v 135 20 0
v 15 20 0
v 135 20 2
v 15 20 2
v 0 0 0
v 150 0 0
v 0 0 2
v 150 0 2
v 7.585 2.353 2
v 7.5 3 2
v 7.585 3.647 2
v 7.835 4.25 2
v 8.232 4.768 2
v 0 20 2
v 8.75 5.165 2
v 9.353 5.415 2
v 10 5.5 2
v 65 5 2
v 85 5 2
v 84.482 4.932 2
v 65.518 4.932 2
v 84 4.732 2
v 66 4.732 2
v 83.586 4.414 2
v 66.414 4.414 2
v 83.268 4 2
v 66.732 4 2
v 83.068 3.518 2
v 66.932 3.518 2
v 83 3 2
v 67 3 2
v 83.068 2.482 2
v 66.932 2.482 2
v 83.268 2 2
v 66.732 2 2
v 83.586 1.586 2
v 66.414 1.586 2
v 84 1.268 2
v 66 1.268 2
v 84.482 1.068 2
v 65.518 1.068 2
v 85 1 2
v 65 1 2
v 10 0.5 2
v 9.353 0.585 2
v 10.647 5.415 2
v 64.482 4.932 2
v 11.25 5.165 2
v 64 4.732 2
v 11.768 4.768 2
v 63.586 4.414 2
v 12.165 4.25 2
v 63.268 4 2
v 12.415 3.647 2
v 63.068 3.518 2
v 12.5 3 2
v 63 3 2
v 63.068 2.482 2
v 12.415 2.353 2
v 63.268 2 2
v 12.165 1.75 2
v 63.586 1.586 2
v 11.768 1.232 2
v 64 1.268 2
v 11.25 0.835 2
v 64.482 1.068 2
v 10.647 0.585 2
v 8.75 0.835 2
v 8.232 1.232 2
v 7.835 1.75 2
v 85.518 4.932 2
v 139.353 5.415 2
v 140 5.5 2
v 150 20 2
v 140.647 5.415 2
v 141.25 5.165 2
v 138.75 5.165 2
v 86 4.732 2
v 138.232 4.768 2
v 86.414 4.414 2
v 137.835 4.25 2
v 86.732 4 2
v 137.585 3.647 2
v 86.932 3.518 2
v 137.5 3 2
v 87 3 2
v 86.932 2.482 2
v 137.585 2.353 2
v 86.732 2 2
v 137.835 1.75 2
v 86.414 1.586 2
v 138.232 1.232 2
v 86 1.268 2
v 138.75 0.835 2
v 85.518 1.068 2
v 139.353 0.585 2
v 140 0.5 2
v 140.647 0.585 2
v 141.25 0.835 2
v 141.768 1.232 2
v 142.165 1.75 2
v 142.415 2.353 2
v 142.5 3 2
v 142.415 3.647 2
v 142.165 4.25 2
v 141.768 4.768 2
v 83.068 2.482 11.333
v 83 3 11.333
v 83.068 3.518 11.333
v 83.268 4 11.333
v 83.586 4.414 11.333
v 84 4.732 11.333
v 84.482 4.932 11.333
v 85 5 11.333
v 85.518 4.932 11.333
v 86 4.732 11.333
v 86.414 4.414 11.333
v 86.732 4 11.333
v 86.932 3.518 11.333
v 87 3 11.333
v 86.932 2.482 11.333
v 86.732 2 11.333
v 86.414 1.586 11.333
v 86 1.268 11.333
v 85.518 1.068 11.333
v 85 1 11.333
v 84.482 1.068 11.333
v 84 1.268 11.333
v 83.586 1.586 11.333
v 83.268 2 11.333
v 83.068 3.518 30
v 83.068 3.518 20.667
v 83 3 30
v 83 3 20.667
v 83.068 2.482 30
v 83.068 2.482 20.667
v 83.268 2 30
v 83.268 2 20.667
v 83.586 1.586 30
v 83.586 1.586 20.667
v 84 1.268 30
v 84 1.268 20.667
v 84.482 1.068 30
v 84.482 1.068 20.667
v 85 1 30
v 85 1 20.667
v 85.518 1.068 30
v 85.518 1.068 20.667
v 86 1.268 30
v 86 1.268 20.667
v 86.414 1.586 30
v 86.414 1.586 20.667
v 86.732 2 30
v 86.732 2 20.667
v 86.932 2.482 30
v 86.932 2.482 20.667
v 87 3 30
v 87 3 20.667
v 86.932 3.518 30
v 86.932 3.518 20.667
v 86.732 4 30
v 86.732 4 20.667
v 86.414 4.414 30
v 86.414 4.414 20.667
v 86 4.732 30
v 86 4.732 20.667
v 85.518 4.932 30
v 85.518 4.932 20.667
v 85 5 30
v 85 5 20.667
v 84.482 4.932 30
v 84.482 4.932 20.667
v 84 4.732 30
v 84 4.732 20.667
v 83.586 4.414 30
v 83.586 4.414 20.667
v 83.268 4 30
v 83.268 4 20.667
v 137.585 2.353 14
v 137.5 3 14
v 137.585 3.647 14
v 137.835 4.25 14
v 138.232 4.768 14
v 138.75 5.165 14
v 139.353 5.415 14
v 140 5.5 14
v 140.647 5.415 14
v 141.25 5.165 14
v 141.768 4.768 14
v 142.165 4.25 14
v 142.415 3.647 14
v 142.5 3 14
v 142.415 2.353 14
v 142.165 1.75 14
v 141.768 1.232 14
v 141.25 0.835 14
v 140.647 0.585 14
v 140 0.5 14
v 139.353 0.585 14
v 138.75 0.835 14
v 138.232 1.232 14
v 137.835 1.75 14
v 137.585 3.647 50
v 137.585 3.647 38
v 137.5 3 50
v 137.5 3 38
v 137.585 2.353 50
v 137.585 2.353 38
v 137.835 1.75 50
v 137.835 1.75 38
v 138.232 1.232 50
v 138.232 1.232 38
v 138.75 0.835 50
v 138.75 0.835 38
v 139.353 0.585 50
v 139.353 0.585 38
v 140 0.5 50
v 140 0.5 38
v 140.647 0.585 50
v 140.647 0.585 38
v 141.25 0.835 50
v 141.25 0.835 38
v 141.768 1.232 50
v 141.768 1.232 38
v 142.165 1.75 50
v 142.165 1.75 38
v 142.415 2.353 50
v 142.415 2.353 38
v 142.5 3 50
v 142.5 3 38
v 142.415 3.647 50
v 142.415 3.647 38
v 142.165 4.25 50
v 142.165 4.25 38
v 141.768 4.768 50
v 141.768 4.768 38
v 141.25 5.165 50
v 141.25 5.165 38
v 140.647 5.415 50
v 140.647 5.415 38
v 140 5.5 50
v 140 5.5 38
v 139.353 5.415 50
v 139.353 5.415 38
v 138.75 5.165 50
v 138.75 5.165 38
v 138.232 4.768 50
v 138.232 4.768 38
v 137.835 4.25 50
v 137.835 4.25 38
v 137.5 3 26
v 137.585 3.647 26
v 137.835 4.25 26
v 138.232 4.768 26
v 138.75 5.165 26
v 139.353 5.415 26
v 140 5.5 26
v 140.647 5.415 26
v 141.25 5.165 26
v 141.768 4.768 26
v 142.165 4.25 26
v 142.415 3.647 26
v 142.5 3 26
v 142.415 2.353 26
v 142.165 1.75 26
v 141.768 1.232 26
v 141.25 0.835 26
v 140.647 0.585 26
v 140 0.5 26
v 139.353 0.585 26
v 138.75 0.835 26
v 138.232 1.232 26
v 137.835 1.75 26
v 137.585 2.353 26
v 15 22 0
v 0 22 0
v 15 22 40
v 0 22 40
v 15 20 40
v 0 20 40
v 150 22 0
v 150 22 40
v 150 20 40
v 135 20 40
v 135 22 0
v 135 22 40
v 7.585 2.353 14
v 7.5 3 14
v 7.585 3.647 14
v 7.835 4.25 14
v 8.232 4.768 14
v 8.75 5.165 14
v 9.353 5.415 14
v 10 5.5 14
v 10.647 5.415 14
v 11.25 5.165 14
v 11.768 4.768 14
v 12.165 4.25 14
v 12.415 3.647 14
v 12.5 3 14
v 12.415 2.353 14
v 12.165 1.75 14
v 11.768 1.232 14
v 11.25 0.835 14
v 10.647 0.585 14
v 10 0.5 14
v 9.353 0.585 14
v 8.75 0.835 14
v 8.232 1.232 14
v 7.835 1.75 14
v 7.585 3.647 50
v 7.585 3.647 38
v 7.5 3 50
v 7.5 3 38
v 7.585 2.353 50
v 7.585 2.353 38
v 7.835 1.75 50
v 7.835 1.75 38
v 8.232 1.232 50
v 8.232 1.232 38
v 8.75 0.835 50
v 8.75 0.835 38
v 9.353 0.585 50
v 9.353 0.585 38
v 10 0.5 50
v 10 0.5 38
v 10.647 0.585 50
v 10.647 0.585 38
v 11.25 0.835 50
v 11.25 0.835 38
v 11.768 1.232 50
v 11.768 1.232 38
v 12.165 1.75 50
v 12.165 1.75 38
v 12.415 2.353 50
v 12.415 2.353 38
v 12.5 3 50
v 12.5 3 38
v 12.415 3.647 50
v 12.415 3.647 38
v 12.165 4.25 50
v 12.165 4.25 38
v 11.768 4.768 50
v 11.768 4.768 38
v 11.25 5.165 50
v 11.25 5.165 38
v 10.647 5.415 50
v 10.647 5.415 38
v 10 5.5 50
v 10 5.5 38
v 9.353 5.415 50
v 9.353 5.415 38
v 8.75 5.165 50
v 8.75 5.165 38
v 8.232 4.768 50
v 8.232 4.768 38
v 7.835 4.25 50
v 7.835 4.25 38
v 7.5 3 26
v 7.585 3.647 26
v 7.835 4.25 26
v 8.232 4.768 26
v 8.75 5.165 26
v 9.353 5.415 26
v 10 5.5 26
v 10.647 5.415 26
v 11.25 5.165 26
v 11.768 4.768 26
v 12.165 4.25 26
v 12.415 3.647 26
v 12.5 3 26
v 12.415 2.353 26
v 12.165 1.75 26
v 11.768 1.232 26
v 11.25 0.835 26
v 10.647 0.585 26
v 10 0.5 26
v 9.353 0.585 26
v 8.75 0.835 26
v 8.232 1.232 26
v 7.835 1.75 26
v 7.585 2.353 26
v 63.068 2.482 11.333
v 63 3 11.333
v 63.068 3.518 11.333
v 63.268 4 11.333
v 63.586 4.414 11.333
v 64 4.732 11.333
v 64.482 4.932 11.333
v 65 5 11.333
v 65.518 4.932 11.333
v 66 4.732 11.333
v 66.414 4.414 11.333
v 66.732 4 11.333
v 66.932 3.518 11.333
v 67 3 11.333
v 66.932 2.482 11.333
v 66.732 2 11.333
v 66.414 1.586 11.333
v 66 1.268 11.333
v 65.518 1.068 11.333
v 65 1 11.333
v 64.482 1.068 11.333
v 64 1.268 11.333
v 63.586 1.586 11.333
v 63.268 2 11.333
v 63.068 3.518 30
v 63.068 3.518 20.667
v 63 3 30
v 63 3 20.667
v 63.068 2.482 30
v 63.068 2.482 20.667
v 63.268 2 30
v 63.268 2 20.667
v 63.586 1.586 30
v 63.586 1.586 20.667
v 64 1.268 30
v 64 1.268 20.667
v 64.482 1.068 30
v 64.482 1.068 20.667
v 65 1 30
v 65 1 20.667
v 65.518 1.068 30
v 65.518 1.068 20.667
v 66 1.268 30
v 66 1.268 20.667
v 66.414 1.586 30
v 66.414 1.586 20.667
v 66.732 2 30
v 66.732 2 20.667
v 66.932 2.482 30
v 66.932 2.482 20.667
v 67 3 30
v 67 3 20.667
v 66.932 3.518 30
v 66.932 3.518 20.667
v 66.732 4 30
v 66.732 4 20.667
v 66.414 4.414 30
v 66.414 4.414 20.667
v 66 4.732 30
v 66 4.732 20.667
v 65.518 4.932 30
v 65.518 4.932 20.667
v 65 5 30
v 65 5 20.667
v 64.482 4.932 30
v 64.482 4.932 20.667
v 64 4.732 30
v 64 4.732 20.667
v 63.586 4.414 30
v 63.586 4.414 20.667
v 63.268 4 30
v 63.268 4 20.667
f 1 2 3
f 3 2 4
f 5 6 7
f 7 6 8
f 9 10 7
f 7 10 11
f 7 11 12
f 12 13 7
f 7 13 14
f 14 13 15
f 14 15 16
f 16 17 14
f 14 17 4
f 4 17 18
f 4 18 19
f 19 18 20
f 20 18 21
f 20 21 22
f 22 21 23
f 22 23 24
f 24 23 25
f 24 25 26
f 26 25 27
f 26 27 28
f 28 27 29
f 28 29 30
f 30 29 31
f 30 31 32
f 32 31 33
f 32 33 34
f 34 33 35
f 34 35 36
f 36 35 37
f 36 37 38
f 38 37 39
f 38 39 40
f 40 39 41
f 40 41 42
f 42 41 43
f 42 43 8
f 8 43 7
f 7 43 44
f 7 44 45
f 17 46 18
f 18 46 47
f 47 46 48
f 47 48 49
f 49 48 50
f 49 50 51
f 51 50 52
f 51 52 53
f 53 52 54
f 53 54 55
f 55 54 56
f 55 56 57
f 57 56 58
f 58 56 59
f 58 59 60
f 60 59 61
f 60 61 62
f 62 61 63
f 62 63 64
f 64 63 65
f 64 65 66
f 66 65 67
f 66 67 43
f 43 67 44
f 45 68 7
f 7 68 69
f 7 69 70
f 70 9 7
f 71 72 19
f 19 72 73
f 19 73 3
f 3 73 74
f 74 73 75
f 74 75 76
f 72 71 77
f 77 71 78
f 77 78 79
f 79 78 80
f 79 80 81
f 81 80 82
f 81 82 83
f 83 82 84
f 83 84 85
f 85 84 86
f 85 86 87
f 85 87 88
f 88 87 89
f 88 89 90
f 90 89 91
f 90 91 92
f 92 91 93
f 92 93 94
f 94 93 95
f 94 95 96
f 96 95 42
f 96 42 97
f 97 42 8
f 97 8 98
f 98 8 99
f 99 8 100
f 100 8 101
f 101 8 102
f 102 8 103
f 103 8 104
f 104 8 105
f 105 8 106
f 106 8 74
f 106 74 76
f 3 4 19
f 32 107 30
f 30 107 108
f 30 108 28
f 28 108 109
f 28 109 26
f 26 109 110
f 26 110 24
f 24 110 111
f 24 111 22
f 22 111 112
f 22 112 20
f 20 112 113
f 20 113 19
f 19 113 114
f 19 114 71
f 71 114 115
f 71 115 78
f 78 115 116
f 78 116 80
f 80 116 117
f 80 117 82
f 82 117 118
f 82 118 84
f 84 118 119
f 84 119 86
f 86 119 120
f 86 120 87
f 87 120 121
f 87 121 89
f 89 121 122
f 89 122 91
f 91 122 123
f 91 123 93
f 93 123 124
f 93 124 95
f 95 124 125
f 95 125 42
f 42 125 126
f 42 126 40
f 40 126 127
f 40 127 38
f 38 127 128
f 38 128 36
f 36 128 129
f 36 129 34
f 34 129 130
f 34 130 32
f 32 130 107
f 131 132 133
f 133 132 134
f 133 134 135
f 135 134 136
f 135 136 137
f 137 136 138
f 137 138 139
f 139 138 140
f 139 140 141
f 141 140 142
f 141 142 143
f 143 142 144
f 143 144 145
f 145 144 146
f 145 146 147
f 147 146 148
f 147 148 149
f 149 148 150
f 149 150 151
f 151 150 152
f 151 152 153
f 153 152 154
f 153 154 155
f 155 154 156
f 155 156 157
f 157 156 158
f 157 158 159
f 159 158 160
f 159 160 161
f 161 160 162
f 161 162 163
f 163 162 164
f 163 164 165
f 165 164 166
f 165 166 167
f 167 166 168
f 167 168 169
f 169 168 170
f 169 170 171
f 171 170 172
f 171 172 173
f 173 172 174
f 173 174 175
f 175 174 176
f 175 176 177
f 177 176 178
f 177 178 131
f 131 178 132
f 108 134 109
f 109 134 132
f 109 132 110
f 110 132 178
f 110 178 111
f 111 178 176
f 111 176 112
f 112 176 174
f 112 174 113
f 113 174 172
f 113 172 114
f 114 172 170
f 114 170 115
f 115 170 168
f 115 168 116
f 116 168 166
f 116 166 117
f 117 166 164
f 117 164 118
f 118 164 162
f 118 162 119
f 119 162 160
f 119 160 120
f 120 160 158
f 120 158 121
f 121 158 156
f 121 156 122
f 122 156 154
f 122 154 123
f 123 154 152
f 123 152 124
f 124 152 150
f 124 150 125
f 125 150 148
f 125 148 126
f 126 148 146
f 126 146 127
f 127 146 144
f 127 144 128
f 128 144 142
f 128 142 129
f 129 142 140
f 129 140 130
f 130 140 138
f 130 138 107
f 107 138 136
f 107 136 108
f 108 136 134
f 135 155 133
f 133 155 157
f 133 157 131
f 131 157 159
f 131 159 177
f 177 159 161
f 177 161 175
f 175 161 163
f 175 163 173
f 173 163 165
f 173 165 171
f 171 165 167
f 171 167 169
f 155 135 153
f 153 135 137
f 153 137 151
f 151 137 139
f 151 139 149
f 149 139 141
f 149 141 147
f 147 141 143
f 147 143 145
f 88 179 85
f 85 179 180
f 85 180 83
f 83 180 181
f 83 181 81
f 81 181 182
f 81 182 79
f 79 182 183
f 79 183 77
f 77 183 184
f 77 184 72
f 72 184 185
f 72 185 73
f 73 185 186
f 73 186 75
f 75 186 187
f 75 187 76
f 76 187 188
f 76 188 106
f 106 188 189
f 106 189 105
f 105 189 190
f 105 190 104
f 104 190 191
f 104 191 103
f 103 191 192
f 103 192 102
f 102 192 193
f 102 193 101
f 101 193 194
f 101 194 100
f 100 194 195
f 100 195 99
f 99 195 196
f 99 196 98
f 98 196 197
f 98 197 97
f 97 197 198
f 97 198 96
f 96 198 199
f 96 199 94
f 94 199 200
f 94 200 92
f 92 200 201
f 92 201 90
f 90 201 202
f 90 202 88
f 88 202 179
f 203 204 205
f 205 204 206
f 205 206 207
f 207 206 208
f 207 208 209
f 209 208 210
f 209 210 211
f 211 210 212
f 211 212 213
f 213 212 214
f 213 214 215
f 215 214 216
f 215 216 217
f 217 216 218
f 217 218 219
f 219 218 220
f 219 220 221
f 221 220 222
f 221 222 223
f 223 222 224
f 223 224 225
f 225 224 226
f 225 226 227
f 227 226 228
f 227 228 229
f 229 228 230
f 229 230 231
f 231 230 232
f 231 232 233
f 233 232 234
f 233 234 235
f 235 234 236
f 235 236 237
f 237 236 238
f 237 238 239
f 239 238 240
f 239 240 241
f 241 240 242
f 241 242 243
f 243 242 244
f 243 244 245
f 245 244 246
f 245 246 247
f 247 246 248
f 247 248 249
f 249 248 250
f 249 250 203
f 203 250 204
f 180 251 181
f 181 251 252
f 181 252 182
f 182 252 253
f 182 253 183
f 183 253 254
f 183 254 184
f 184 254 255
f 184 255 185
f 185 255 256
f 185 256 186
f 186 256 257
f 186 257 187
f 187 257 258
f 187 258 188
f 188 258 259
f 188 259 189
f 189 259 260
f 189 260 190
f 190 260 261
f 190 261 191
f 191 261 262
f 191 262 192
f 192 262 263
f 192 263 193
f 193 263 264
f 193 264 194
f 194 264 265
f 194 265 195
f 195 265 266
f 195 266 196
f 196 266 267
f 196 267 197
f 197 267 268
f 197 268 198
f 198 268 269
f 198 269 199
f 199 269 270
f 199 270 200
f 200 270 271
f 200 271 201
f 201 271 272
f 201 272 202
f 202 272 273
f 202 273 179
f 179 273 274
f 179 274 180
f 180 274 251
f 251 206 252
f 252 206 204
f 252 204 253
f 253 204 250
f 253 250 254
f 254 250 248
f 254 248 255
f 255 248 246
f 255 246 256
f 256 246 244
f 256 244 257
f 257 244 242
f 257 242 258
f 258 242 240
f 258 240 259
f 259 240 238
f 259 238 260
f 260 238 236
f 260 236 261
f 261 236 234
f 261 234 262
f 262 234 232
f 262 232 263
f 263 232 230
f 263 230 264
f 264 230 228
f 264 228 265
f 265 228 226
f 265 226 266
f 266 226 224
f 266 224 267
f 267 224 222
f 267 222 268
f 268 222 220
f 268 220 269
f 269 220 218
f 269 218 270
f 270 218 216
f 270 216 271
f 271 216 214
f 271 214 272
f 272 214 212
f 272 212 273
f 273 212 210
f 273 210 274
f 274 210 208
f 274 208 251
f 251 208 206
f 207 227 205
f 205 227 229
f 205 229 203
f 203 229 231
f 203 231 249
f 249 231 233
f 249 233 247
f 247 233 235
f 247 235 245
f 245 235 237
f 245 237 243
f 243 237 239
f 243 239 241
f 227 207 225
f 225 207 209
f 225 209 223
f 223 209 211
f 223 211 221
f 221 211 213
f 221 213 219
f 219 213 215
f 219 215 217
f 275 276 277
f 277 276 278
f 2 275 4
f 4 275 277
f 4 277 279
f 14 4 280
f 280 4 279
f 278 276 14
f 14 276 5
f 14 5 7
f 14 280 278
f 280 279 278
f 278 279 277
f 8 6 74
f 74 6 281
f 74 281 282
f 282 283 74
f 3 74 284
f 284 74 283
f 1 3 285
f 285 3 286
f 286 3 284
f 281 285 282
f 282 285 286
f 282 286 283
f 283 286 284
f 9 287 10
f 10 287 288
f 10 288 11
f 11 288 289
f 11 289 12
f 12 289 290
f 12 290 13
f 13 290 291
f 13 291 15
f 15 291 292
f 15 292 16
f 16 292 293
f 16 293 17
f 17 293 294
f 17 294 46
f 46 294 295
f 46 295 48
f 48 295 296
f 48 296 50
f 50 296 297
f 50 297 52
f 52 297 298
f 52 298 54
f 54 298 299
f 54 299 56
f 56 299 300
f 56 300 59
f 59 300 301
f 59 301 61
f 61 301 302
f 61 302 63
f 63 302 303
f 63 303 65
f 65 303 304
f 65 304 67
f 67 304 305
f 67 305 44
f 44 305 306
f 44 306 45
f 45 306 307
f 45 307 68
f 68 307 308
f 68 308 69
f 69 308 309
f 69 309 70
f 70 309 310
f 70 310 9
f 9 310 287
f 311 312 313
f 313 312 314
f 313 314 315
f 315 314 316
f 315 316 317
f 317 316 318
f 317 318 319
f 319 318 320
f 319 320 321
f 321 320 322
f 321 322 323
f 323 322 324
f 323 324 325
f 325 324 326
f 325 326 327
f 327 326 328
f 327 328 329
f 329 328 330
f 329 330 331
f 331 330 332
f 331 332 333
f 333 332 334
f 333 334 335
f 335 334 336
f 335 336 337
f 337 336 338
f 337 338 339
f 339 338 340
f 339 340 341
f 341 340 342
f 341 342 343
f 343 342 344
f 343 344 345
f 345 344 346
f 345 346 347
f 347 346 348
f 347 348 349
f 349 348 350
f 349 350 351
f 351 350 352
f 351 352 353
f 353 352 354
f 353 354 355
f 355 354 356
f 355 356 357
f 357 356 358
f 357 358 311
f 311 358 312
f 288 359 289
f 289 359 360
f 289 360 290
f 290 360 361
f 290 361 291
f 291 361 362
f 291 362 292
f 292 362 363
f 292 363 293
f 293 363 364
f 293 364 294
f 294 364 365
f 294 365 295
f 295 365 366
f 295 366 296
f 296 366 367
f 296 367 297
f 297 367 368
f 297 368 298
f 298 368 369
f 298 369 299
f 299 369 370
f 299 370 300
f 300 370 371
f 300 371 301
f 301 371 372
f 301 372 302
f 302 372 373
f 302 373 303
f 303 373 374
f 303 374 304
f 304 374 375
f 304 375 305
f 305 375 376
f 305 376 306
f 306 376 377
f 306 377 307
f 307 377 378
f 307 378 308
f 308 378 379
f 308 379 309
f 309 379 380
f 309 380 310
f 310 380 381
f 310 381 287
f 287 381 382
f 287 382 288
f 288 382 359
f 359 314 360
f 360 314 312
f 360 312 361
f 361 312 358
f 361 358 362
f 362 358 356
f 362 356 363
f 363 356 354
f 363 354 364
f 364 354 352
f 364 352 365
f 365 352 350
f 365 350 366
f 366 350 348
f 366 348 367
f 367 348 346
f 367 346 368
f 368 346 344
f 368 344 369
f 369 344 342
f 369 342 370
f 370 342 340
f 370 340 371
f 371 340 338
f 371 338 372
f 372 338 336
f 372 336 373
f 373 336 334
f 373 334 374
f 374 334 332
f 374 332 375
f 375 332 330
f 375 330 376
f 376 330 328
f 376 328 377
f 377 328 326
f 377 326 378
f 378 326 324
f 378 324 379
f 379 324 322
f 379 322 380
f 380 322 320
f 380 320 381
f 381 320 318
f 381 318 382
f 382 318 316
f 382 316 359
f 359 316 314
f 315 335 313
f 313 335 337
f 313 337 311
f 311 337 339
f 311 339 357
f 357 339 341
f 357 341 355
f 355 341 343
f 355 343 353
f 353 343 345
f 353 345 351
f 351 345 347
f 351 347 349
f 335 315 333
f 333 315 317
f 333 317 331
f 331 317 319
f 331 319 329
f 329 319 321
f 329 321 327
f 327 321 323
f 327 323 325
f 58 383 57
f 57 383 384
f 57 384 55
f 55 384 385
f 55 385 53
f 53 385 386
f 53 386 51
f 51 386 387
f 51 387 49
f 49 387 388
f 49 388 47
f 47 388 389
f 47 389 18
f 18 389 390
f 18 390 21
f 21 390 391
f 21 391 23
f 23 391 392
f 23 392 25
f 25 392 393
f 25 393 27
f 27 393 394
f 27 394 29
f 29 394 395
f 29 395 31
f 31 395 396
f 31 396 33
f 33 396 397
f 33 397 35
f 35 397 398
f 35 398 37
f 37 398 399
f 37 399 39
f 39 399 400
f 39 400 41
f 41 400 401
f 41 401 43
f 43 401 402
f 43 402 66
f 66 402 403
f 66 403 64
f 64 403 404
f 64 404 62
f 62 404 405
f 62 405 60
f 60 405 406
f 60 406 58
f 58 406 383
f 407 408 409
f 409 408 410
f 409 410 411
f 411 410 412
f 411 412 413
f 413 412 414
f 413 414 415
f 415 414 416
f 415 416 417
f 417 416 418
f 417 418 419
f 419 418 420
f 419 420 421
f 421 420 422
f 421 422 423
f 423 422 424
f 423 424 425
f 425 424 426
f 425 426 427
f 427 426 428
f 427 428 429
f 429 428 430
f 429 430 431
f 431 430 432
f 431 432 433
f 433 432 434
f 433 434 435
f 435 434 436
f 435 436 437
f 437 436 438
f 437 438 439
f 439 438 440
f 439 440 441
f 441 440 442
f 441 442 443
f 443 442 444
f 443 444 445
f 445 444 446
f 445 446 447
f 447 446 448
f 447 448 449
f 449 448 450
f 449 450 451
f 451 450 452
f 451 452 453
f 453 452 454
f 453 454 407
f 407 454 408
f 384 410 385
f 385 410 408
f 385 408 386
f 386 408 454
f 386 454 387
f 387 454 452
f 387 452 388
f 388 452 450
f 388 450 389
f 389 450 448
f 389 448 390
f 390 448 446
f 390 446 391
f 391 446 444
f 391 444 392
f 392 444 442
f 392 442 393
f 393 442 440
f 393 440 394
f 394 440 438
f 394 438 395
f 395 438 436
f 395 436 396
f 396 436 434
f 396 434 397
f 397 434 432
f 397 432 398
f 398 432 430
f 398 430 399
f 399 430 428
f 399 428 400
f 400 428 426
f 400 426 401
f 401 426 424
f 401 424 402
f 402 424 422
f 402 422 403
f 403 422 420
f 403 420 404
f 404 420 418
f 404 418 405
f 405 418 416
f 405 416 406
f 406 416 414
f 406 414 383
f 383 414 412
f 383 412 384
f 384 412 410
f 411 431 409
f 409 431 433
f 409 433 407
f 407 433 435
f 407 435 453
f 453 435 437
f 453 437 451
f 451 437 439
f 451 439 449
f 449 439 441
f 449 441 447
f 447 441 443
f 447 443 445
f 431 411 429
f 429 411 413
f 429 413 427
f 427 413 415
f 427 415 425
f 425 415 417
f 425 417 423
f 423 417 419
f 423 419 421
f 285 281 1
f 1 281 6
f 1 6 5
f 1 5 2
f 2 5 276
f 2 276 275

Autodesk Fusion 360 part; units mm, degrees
sketch "Esquisse1" plane through (0, 0, 0) normal (0, 0, 1) x (1, 0, 0)
  line L0 (0, 0) -> (150, 0)
  line L1 (150, 0) -> (150, 20)
  line L2 (150, 20) -> (0, 20)
  line L3 (0, 20) -> (0, 0)
  line L4 (0, 20) -> (15, 20)
  line L5 (15, 20) -> (15, 22)
  line L6 (15, 22) -> (0, 22)
  line L7 (0, 22) -> (0, 20)
  line L8 (150, 20) -> (135, 20)
  line L9 (135, 20) -> (135, 22)
  line L10 (135, 22) -> (150, 22)
  line L11 (150, 22) -> (150, 20)
  line L12 (75, 0) -> (75, 20)
  circle A0 centre (10, 3) radius 2.5
  circle A1 centre (140, 3) radius 2.5
  circle A2 centre (85, 3) radius 2
  circle A3 centre (65, 3) radius 2
  dimension "d13" = 150
  dimension "d14" = 20
  dimension "d15" = 5
  dimension "d16" = 5
  dimension "d17" = 4
  dimension "d18" = 4
  dimension "d19" = 10
  dimension "d20" = 10
  dimension "d21" = 10
  dimension "d22" = 10
  dimension "d23" = 3
  dimension "d24" = 3
  dimension "d25" = 3
  dimension "d26" = 3
  dimension "d27" = 2
  dimension "d28" = 15
  dimension "d29" = 15
  dimension "d30" = 2
extrude "Extrusion1" add sketch "Esquisse1" along normal blind 40 contours L2 L4 L5 L6 L7 | L2 L8 L9 L10 L11 makes body 1 at (145, 20, 26.6667) makes body 2 at (10, 22, 26.6667)
extrude "Extrusion2" add sketch "Esquisse1" along normal blind 50 separate body contours A0 | A1 makes body 3 at (12.4876, 2.7511, 16.6667) makes body 4 at (140.6771, 5.4066, 33.3333)
extrude "Extrusion3" add sketch "Esquisse1" along normal blind 30 separate body contours A2 | A3 makes body 5 at (66.3234, 4.4996, 20) makes body 6 at (83.6035, 4.4317, 20)
extrude "Extrusion4" add sketch "Esquisse1" along normal blind 2 contours L0 L2 L3 L4 L12 | L0 L1 L2 L8 L12 bodies 1 2 3 4 5 6
equation "longueur_totale = 150 mm"
equation "largeur_totale = 20 mm"
equation "hauteur_base = 2 mm"
equation "hauteur_plaque_maintien = 40 mm"
equation "hauteur_tube_ext = 50 mm"
equation "hauteur_tube_int = 30 mm"
equation "rayon_tube_ext = 5 mm"
equation "rayon_tube_int = 4 mm"
equation "longueur_plaque_maintien = 15 mm"
equation "largeur_plaque_maintien = 2 mm"
equation "ecart_tube_ext_extérieur = 10 mm"
equation "ecart_tube_int_centre = 10 mm"
equation "d13 = longueur_totale"
equation "d14 = largeur_totale"
equation "d15 = rayon_tube_ext"
equation "d16 = rayon_tube_ext"
equation "d17 = rayon_tube_int"
equation "d18 = rayon_tube_int"
equation "d19 = ecart_tube_ext_extérieur"
equation "d20 = ecart_tube_ext_extérieur"
equation "d21 = ecart_tube_int_centre"
equation "d22 = ecart_tube_int_centre"
equation "d24 = d23"
equation "d25 = d23"
equation "d26 = d23"
equation "d27 = largeur_plaque_maintien"
equation "d28 = longueur_plaque_maintien"
equation "d29 = longueur_plaque_maintien"
equation "d30 = largeur_plaque_maintien"
equation "d31 = hauteur_plaque_maintien"
equation "d33 = hauteur_tube_ext"
equation "d35 = hauteur_tube_int"
equation "d37 = hauteur_base"
